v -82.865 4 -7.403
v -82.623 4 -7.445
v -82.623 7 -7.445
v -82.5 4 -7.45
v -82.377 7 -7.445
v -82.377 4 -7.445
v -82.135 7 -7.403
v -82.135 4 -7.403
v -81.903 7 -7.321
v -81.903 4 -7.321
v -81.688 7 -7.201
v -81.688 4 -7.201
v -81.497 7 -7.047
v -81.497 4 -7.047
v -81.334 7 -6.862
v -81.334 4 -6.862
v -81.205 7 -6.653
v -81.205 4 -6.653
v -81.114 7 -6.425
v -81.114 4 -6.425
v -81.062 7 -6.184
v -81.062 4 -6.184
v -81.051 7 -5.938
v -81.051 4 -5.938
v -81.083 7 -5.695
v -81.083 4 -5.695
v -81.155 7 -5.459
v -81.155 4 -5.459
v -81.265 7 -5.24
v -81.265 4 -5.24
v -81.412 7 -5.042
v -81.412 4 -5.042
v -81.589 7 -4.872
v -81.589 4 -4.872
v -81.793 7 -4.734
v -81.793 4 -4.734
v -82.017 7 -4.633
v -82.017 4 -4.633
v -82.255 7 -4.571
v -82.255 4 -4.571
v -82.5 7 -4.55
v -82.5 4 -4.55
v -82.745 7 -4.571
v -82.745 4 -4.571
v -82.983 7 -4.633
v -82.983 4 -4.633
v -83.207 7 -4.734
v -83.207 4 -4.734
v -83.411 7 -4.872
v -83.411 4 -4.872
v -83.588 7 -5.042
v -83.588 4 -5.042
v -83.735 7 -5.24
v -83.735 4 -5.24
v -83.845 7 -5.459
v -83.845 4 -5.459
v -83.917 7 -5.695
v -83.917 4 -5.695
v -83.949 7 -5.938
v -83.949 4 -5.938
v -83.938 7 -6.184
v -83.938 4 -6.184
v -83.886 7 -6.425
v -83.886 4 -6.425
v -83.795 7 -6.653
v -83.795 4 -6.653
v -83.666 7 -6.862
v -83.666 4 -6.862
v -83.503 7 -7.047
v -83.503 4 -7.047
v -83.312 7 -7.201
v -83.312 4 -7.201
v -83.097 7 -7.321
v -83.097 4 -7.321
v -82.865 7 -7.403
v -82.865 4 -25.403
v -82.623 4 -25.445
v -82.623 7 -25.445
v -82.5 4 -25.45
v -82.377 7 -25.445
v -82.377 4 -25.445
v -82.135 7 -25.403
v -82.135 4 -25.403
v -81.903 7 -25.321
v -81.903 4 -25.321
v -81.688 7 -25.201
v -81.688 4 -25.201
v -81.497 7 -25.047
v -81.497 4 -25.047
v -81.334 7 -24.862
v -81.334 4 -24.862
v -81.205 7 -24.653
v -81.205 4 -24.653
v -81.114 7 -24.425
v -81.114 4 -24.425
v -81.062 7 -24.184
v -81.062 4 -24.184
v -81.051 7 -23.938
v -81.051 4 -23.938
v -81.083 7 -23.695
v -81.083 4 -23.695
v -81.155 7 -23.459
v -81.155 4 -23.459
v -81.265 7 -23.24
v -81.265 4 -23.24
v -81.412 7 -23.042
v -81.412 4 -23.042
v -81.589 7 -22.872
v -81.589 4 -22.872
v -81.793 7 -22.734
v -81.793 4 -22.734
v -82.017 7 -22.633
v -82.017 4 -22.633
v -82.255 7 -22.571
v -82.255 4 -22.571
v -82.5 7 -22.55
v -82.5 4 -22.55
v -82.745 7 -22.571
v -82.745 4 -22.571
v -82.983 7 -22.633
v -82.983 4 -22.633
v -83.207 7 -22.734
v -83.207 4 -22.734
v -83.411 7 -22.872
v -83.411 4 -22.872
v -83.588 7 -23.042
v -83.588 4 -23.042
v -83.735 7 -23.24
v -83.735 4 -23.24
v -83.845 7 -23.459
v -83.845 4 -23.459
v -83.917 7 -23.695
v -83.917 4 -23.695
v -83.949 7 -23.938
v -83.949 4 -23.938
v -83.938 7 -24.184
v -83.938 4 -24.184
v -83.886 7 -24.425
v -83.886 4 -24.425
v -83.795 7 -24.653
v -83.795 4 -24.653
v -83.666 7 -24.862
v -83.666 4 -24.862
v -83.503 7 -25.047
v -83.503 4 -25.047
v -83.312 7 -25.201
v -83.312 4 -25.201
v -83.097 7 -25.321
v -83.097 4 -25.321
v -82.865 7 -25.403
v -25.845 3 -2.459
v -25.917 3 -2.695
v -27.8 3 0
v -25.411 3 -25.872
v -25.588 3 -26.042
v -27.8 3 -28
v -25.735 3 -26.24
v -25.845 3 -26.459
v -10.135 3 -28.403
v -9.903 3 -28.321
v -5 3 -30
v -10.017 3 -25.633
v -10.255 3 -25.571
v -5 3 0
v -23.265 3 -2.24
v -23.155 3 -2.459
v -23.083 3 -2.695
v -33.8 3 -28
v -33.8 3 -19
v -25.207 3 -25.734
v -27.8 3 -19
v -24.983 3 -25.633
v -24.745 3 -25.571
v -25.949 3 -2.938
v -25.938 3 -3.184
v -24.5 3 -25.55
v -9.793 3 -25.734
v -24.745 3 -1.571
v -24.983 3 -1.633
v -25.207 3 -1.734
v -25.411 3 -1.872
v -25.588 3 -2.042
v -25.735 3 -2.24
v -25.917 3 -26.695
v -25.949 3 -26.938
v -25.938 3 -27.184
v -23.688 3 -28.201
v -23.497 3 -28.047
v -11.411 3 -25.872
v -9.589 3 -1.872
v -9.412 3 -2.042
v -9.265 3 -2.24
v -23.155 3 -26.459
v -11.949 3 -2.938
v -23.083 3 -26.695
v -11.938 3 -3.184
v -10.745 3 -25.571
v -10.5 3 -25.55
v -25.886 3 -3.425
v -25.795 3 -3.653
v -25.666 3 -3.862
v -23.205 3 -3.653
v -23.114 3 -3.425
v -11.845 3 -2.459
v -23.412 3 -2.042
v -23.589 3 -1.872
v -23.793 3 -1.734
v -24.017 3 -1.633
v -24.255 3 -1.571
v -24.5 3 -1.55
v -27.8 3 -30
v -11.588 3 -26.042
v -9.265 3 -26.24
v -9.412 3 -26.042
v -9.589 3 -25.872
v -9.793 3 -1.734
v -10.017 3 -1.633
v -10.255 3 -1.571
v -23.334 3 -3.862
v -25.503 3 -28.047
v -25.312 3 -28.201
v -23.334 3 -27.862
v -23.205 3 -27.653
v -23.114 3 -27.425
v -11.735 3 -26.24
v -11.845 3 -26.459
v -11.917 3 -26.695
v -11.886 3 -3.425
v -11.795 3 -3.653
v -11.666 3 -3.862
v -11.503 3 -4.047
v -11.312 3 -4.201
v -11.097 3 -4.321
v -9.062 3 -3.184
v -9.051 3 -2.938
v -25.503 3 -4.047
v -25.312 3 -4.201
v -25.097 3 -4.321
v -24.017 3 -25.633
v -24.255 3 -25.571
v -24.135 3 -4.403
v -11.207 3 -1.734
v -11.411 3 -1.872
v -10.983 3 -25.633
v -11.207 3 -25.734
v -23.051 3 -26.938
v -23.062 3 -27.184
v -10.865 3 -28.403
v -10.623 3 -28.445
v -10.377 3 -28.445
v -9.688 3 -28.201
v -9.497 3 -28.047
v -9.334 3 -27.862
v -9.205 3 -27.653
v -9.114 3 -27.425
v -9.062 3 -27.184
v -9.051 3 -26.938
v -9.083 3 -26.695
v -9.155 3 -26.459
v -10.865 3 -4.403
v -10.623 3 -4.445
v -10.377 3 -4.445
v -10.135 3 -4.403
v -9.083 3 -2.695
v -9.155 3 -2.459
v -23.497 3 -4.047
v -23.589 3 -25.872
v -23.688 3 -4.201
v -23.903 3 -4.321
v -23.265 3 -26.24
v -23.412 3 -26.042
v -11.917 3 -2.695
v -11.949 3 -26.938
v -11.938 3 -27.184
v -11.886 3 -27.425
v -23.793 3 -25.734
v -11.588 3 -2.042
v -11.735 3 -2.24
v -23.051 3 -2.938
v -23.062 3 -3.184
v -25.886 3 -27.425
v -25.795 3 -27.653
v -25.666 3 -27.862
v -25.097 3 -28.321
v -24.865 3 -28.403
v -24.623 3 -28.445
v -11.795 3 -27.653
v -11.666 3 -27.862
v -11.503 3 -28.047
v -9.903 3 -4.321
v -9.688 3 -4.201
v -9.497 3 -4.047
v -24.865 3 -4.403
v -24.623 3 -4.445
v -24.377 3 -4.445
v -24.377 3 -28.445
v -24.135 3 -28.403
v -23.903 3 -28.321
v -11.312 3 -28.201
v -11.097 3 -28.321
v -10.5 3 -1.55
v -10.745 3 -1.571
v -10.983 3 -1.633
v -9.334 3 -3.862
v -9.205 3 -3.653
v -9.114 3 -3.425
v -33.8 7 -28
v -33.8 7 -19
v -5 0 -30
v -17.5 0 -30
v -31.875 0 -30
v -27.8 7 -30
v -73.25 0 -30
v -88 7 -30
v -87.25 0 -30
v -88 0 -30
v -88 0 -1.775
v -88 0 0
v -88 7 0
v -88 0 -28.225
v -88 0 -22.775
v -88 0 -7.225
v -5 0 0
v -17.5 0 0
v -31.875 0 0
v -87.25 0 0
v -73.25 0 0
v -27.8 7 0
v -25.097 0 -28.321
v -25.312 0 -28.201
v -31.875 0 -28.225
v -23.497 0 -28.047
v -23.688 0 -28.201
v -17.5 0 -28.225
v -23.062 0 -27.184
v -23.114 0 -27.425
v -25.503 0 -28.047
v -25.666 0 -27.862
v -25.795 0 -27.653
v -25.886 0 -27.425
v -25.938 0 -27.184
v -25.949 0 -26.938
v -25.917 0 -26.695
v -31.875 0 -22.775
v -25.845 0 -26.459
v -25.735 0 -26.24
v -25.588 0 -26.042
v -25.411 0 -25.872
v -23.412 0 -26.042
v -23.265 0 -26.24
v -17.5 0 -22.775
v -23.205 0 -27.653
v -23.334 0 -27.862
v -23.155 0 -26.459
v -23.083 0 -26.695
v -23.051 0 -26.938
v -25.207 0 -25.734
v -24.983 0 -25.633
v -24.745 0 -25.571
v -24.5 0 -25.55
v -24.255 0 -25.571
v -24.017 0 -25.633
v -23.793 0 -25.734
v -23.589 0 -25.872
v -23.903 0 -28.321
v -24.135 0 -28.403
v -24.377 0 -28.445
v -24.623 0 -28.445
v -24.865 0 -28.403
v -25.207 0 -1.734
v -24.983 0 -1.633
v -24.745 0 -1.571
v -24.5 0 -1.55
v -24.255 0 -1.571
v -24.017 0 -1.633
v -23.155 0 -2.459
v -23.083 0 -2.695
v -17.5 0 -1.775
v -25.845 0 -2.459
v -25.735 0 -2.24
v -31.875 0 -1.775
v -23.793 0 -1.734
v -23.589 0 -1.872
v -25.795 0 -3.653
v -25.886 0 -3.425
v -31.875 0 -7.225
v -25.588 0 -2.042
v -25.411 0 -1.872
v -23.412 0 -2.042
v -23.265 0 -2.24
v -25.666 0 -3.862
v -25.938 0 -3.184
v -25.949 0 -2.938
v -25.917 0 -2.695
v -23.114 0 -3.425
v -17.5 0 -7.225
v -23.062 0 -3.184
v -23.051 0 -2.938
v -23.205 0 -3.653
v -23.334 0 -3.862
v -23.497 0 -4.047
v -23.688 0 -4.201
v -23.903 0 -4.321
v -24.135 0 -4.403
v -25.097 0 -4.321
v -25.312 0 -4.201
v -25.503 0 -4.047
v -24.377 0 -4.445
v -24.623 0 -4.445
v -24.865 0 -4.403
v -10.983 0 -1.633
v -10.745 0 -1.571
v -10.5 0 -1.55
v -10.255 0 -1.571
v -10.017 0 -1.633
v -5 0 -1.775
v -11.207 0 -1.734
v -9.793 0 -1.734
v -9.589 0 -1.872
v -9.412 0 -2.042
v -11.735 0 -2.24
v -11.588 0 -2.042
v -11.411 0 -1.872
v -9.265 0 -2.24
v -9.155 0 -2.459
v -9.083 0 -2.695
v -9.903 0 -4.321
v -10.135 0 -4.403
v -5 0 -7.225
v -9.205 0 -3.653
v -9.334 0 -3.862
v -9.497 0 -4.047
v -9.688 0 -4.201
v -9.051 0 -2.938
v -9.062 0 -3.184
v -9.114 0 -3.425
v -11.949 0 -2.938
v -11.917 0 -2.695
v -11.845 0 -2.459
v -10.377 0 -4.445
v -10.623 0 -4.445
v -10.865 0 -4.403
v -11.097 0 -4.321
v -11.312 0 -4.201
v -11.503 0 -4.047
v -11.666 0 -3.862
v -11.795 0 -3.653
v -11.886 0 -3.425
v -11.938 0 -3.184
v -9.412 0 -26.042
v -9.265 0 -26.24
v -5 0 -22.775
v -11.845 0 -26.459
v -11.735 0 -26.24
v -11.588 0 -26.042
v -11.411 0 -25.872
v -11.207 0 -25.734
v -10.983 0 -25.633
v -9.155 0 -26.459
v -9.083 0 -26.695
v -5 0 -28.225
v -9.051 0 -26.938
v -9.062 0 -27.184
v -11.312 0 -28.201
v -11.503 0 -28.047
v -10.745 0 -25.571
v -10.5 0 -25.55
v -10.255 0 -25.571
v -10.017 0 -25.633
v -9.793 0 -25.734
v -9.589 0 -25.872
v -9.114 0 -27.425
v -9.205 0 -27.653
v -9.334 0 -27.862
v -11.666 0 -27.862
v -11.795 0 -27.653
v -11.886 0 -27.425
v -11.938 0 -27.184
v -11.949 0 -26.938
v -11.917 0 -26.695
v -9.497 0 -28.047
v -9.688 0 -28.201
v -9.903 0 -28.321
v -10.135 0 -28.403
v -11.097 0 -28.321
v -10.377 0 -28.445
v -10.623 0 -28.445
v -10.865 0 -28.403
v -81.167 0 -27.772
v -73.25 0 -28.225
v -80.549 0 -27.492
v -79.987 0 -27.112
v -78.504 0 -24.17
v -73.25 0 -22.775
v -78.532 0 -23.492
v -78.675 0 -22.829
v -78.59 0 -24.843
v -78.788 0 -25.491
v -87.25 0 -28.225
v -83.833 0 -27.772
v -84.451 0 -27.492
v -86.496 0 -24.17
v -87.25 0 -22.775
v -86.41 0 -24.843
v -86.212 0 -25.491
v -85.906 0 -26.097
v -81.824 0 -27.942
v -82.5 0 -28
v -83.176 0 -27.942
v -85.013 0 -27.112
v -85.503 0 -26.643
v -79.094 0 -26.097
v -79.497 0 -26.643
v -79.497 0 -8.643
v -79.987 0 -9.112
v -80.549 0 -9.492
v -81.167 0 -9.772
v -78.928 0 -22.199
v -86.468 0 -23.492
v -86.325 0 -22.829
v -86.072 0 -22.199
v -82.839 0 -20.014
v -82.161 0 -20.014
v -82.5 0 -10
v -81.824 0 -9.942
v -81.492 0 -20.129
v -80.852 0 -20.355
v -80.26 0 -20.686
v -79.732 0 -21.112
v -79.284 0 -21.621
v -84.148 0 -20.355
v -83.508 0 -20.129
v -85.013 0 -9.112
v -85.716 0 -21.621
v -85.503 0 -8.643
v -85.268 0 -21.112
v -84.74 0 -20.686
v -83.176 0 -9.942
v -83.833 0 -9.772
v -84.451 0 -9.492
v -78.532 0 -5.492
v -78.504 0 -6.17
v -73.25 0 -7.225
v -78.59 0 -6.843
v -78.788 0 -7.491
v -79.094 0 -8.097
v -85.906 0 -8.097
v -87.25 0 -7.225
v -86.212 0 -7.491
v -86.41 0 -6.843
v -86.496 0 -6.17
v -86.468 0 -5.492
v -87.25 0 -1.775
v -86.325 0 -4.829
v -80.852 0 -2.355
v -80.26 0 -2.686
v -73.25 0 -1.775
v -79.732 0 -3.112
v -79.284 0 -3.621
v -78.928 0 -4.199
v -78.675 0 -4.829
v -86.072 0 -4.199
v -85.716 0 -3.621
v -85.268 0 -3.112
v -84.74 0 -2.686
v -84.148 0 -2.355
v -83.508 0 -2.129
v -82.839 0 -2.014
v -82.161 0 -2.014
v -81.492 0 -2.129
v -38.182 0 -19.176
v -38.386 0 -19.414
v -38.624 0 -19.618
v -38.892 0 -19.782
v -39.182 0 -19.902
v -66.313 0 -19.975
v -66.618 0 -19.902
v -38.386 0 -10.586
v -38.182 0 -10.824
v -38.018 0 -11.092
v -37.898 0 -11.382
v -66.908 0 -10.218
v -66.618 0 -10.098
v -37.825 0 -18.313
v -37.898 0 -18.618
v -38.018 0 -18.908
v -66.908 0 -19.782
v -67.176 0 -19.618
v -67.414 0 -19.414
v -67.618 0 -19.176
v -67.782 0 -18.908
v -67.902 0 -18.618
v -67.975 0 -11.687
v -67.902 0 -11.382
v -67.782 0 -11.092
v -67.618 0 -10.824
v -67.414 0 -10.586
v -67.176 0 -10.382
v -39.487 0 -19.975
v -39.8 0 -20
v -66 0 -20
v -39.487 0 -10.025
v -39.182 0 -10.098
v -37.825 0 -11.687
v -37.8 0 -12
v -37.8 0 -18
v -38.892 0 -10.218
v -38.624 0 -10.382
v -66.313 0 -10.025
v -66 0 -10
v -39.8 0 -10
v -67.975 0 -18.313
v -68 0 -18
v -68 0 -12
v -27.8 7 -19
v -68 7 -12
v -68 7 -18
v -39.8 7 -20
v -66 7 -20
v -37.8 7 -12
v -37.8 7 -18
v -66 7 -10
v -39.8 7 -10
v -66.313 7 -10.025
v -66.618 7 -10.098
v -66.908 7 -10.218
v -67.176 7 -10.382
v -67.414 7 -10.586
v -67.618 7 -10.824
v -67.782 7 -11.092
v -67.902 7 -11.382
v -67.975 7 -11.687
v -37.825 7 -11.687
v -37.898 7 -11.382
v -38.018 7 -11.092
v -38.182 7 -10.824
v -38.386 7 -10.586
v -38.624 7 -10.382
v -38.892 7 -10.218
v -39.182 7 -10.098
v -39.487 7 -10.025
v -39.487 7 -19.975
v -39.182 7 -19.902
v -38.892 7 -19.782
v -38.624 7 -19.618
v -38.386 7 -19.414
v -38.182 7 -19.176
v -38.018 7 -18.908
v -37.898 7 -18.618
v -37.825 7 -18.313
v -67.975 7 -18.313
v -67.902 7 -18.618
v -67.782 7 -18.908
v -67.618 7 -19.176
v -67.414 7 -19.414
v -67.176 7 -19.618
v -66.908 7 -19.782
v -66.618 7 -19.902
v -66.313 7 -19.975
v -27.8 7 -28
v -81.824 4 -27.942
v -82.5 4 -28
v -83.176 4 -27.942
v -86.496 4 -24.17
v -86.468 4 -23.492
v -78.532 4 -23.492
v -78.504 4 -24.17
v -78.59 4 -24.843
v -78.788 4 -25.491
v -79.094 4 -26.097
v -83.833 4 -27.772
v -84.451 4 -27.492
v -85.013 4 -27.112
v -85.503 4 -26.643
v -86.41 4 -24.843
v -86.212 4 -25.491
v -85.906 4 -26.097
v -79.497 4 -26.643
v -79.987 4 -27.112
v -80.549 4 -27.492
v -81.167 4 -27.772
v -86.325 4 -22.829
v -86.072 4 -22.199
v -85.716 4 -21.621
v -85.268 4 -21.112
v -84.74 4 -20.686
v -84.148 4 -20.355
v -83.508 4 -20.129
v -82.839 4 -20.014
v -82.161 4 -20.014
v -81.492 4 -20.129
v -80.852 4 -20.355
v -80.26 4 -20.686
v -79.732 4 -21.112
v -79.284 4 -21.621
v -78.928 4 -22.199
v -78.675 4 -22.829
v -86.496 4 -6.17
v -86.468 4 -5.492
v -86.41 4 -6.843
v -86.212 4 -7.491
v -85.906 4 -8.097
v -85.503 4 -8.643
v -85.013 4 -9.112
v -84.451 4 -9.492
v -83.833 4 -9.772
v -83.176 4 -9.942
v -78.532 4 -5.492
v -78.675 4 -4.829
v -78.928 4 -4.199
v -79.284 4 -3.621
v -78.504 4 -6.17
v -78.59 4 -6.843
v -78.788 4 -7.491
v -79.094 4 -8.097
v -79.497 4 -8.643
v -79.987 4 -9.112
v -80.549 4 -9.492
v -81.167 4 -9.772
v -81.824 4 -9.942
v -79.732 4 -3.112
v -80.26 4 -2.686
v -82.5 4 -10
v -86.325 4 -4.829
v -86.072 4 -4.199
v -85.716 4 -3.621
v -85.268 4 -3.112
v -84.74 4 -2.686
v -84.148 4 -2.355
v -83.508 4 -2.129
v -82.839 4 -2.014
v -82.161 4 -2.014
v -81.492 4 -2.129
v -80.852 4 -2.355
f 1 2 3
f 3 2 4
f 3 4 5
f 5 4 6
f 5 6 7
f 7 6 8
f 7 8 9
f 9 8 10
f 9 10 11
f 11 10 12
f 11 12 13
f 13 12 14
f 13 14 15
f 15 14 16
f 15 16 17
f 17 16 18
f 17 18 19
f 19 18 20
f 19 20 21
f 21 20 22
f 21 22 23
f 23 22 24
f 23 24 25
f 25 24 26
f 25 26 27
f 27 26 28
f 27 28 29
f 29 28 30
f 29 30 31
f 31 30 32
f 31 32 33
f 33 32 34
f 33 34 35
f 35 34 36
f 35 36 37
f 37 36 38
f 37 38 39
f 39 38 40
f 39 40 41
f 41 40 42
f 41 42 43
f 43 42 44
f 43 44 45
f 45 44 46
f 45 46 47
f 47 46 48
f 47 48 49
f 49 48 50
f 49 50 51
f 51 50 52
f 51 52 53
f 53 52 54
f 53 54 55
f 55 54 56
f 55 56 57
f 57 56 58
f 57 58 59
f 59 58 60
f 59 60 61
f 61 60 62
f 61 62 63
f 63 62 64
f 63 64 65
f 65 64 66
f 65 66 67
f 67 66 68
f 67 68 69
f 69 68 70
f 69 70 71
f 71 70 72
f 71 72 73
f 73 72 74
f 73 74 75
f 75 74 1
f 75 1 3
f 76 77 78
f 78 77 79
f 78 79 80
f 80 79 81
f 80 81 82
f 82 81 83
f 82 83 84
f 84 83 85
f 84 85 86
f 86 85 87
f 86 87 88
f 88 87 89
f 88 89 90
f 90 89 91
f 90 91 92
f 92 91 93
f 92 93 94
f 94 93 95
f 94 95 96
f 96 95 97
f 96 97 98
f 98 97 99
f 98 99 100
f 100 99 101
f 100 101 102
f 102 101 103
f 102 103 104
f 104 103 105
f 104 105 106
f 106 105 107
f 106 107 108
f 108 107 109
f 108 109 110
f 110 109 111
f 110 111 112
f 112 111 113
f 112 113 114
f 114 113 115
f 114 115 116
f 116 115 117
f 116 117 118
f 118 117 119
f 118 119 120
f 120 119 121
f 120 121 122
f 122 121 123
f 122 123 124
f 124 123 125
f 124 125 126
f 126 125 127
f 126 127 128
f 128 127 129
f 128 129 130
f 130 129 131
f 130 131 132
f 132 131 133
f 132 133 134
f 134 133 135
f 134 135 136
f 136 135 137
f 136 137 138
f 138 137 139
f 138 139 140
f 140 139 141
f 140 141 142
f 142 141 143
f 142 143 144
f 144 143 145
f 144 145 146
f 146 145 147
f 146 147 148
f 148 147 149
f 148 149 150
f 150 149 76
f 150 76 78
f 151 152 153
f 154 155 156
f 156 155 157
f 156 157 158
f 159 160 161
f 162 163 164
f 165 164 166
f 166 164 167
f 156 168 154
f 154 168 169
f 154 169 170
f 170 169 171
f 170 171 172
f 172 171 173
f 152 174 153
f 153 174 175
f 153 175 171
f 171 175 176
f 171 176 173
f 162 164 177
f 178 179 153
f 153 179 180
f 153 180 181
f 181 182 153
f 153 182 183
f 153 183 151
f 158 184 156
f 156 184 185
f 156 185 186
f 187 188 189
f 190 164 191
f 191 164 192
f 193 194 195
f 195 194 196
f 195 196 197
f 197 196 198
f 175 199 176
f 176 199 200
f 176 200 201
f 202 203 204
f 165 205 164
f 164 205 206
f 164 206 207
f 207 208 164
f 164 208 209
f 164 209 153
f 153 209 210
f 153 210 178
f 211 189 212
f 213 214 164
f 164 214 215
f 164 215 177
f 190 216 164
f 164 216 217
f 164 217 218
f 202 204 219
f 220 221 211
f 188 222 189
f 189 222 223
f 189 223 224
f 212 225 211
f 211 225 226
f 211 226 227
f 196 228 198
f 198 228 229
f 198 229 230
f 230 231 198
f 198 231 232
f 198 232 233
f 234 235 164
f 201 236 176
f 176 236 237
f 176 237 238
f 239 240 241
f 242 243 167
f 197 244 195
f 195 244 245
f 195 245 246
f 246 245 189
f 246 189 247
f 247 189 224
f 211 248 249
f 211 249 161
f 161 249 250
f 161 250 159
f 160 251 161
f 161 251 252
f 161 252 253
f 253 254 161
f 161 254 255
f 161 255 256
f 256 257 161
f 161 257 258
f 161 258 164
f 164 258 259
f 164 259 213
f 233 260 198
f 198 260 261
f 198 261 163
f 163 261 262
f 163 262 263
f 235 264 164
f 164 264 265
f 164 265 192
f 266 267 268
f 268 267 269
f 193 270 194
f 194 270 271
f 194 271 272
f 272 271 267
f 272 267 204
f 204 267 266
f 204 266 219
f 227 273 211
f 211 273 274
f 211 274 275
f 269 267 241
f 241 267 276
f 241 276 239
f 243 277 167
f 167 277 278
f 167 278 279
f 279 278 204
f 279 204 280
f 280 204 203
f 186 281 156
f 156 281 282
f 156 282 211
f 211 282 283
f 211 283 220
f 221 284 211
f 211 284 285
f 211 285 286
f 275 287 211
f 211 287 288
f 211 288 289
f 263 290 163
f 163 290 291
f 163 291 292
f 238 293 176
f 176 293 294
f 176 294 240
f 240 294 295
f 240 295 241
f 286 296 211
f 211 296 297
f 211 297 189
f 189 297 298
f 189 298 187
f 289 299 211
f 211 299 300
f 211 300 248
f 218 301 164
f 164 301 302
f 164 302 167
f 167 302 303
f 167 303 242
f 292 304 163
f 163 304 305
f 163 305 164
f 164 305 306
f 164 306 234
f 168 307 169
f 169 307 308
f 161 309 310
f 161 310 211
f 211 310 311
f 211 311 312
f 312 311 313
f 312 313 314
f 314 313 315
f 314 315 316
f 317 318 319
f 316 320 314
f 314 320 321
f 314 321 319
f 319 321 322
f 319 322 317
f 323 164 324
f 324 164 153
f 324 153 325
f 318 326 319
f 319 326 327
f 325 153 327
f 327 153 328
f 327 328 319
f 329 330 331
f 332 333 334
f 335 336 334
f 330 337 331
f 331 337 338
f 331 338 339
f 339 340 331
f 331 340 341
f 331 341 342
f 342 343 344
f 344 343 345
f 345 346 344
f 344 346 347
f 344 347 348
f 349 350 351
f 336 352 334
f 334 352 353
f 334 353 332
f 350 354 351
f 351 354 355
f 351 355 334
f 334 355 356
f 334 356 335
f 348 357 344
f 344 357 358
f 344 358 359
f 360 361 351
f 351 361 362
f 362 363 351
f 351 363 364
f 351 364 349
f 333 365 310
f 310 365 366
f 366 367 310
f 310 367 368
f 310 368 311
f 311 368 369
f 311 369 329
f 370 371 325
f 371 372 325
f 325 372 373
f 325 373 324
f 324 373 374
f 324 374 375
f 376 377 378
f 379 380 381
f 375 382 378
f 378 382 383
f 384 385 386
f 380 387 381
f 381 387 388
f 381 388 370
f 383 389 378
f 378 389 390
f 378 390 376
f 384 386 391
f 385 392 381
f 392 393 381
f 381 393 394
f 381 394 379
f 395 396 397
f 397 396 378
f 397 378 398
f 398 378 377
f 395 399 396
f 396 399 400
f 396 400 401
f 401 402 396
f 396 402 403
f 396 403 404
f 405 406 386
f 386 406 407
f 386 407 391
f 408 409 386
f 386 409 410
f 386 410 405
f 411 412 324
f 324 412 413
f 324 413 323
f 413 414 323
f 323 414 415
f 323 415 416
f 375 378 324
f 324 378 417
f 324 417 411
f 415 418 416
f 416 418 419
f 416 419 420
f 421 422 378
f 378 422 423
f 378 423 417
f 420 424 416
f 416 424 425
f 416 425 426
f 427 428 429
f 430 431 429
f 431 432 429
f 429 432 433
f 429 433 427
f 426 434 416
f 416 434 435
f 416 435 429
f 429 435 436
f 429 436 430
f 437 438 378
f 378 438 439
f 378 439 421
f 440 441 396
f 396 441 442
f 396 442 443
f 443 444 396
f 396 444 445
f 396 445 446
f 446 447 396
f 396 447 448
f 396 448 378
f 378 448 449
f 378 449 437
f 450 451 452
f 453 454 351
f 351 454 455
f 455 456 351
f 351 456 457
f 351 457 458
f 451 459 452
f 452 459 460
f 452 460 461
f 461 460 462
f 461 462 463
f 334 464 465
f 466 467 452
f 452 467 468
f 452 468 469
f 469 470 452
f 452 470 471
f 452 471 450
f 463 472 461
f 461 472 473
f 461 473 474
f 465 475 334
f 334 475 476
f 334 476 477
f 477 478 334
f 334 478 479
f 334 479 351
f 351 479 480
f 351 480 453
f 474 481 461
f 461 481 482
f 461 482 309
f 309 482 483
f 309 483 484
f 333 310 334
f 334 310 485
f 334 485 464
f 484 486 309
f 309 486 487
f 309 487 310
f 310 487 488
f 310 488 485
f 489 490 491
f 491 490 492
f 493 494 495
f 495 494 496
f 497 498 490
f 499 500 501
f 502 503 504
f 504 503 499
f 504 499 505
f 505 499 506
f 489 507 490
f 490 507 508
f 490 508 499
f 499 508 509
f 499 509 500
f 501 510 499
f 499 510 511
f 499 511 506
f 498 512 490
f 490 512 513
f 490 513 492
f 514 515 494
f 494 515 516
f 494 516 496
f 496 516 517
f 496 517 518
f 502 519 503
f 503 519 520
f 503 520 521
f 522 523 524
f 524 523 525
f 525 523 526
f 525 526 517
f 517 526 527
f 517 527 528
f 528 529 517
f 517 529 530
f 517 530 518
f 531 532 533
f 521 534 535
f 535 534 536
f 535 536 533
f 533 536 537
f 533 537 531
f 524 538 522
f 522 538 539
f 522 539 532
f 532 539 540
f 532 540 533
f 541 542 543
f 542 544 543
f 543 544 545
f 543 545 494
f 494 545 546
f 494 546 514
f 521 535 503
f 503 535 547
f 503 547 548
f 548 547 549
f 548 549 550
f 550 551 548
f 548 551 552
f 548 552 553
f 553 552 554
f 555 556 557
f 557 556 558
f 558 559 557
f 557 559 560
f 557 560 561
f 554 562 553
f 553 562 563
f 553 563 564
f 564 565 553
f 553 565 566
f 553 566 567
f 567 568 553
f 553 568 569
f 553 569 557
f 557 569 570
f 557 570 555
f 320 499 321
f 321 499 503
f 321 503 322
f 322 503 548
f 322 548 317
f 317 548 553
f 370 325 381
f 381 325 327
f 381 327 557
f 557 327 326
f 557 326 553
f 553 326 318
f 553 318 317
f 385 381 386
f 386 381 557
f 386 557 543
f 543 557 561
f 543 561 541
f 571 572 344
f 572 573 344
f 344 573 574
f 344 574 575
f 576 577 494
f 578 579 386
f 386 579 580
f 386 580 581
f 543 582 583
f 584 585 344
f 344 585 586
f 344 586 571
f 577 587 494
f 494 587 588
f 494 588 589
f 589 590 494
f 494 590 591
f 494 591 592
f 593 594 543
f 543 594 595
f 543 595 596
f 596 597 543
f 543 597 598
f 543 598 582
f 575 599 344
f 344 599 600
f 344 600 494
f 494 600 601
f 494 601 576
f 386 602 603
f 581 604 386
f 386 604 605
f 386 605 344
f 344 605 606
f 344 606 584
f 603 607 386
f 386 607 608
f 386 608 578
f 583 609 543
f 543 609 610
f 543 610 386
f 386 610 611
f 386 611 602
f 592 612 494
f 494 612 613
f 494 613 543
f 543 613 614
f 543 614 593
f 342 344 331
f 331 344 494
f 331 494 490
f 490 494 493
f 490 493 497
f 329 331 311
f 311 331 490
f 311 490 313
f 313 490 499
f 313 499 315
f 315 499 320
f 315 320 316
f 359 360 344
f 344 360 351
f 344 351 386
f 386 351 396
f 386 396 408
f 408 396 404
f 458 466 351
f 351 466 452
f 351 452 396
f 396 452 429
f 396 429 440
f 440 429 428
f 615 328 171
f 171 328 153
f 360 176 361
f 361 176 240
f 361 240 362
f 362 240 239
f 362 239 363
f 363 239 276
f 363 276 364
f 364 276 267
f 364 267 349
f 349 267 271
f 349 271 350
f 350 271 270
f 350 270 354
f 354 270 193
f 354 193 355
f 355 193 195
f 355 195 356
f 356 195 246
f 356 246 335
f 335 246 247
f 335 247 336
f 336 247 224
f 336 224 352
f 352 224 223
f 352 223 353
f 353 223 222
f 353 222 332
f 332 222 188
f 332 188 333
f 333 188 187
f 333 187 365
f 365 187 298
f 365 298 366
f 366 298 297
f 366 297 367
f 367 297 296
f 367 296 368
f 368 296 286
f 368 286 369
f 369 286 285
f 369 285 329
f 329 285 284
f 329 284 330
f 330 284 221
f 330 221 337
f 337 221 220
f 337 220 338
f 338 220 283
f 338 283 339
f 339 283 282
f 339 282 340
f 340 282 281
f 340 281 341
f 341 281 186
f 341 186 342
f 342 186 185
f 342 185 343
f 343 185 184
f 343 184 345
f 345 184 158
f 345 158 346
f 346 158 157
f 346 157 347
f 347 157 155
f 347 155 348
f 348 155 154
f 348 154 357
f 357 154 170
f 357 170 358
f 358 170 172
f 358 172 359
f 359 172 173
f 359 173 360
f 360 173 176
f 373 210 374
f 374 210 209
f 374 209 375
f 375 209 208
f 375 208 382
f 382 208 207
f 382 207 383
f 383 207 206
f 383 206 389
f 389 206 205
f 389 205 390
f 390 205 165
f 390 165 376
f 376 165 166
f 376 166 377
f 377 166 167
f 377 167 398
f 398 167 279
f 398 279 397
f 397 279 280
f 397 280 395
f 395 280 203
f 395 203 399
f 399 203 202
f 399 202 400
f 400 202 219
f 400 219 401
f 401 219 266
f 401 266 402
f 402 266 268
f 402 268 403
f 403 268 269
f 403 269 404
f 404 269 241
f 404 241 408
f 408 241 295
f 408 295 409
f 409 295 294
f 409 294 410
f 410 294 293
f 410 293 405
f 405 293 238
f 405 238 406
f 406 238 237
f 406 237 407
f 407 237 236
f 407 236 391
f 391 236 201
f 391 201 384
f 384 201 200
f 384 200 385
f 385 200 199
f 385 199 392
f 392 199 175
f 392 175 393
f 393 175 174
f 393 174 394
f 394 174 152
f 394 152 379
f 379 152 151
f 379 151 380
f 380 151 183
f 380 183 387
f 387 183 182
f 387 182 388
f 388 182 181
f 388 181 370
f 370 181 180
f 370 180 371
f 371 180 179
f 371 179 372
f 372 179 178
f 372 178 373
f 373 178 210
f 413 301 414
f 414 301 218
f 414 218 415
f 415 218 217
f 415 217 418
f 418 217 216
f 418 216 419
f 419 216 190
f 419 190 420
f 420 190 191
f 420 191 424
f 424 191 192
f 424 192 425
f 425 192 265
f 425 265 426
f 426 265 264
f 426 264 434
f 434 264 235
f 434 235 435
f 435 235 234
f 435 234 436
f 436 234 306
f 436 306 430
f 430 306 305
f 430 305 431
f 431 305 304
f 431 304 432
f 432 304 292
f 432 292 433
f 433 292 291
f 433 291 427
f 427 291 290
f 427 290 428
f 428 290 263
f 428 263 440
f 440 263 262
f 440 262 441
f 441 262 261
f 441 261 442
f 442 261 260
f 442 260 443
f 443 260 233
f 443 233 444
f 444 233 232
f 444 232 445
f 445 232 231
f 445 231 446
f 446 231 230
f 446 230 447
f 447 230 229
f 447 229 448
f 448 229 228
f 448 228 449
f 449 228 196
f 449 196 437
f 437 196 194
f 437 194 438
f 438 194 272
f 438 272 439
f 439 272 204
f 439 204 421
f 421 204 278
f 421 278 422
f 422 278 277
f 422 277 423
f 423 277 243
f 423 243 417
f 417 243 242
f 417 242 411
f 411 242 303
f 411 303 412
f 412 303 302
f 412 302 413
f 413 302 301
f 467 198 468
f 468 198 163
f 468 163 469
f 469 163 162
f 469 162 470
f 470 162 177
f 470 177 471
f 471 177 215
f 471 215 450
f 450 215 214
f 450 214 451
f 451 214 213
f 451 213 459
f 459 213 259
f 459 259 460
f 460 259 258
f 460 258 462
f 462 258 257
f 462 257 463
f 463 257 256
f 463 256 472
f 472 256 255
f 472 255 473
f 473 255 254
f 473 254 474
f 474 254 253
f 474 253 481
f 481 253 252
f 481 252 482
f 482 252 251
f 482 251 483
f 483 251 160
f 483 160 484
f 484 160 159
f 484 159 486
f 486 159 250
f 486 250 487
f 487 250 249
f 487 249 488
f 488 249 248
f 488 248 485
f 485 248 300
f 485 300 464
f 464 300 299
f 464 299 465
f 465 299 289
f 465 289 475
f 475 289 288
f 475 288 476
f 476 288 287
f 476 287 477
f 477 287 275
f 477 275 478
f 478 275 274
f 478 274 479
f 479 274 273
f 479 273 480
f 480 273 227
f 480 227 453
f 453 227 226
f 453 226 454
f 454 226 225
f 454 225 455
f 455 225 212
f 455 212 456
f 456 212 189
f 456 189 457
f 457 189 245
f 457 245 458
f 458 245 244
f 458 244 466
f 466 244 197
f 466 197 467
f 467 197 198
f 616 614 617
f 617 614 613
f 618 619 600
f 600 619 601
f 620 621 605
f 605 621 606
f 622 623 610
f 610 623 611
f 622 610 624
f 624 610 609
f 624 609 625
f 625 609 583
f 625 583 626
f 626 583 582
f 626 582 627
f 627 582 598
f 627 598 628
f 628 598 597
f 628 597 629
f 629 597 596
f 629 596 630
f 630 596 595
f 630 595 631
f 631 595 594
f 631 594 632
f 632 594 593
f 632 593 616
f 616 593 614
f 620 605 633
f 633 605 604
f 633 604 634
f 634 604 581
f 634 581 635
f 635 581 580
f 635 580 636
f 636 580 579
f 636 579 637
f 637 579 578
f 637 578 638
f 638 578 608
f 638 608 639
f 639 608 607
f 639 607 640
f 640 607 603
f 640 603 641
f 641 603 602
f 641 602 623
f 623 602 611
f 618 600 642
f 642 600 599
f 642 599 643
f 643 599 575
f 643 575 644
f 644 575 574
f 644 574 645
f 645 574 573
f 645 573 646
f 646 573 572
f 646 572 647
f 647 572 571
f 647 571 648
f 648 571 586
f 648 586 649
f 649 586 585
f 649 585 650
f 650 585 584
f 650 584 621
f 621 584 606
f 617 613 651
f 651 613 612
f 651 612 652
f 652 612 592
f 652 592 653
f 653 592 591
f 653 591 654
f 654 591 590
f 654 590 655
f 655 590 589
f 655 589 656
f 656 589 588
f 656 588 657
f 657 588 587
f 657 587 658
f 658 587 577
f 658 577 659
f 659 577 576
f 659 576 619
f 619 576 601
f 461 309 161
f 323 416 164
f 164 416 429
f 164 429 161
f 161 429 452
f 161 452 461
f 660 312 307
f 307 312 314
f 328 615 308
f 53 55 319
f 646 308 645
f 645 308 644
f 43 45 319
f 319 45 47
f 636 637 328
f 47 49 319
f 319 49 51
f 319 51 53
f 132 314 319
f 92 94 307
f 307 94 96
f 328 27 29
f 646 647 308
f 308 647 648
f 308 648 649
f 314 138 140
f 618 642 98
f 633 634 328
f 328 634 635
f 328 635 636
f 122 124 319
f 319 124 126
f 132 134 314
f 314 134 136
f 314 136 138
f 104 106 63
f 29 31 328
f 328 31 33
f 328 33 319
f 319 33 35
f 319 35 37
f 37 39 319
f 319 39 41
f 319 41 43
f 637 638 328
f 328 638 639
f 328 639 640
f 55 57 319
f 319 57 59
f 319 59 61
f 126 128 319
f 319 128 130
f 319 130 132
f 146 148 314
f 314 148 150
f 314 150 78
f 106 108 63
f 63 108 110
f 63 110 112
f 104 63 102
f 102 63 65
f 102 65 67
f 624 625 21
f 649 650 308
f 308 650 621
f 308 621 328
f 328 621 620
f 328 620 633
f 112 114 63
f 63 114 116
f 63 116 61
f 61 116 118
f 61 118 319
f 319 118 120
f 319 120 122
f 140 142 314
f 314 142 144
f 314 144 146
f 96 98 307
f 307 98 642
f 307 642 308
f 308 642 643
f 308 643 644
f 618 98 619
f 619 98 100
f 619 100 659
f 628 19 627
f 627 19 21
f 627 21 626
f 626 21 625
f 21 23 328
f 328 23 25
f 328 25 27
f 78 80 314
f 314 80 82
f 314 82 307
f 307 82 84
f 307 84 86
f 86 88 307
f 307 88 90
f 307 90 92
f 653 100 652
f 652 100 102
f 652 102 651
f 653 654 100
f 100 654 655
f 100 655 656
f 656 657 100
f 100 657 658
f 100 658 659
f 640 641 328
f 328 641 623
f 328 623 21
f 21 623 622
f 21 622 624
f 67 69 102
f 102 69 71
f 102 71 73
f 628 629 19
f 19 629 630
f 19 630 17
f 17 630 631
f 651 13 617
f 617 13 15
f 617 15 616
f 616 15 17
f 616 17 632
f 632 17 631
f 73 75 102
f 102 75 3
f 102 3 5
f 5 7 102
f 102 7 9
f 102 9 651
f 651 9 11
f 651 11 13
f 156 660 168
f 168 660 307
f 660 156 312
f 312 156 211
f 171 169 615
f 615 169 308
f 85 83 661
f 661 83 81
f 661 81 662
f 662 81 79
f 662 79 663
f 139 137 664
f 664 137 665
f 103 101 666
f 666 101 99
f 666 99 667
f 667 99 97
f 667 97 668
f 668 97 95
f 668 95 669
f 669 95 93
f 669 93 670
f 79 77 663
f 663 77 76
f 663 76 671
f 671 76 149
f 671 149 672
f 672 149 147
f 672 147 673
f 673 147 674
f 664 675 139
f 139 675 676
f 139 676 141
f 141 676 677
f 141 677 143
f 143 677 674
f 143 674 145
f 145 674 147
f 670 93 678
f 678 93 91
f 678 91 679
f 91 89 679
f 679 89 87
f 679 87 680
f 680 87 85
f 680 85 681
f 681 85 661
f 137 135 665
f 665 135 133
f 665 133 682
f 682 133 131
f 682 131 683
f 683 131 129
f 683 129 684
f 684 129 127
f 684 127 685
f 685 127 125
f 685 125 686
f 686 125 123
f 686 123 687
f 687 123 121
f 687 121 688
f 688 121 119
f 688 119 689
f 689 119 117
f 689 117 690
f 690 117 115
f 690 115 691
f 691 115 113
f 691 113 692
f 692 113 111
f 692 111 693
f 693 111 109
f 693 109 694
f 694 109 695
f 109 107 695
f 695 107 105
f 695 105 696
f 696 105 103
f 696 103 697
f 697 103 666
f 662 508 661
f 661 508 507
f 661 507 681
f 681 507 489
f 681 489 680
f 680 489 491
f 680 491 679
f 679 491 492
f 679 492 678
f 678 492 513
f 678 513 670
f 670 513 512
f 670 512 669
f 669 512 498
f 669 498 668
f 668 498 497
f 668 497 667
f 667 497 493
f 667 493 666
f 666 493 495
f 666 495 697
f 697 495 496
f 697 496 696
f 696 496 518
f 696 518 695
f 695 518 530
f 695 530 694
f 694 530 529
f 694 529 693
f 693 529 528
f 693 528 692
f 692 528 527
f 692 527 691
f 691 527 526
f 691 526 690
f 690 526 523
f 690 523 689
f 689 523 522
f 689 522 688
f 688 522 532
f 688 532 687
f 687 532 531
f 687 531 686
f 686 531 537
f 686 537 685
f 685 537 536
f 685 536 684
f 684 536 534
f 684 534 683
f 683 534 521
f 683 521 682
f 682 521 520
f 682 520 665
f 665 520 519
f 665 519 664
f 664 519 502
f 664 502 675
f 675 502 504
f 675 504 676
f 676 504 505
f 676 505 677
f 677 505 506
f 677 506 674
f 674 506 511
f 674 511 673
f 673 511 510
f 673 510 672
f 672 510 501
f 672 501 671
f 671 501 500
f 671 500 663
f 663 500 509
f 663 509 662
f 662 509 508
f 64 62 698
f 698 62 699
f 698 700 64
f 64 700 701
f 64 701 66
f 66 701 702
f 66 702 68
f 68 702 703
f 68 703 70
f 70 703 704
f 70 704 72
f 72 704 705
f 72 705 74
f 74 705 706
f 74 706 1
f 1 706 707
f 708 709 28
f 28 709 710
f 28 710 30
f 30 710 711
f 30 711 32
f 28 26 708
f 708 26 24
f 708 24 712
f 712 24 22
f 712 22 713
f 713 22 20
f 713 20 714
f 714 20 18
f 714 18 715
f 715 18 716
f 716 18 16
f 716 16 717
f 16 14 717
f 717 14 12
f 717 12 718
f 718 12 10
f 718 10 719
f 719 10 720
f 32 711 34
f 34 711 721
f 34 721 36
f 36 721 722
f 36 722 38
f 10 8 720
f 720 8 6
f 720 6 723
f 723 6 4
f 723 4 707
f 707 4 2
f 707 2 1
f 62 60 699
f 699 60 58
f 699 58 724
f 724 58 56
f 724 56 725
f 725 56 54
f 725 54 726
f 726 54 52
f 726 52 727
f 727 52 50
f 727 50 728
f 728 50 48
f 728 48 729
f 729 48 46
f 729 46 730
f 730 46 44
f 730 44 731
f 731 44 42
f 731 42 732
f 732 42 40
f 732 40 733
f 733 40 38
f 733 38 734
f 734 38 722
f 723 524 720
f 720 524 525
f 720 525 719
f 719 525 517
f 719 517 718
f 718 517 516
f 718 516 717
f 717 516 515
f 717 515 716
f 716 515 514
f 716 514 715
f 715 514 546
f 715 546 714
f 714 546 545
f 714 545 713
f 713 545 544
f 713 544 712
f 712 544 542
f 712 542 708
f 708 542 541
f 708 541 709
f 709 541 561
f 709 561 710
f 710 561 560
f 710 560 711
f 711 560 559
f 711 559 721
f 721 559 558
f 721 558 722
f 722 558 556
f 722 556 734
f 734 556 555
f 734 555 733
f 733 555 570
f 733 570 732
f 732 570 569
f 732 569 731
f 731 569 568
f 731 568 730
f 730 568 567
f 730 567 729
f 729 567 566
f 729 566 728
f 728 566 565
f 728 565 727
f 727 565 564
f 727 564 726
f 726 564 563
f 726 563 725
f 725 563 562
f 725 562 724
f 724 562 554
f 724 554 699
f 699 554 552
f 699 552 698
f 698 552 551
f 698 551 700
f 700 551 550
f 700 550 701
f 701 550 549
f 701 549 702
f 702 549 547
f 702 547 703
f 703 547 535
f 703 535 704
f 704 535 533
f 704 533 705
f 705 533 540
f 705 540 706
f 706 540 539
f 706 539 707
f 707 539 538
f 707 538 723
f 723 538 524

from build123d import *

# Parameters (mm, degrees)
SKETCH_1_W          = 88
SKETCH_1_H          = 30
EXTRUDE_1_DEPTH     = 3
SKETCH_2_W          = 27.8
SKETCH_2_H          = 30
CUT_EXTRUDE_1_DEPTH = 1
SKETCH_3_R          = 1.45
CUT_EXTRUDE_2_DEPTH = 11
SKETCH_4_R          = 1.45
CUT_EXTRUDE_4_DEPTH = 11
SKETCH_5_W          = 30.2
SKETCH_5_H          = 10
CUT_EXTRUDE_5_DEPTH = 11
FILLET_1_R          = 2
SKETCH_6_W          = 5
SKETCH_6_H          = 30
CUT_EXTRUDE_6_DEPTH = 10
SKETCH_9_W          = 60.2
SKETCH_9_H          = 30
SKETCH_9_R          = 1.45
EXTRUDE_4_DEPTH     = 4
EXTRUDE_START       = 1
SKETCH_7_W          = 22.8
SKETCH_7_H          = 30
SKETCH_7_R          = 1.45
EXTRUDE_5_DEPTH     = 1
SKETCH_11_W         = 15
SKETCH_11_H         = 4
CUT_EXTRUDE_8_DEPTH = 6
SKETCH_12_W         = 2
SKETCH_12_H         = 4
EXTRUDE_6_DEPTH     = 6
SKETCH_13_W         = 6
SKETCH_13_H         = 4
EXTRUDE_7_DEPTH     = 4
SKETCH_14_R         = 4
CUT_EXTRUDE_9_DEPTH = 4


with BuildPart() as part:
    # 草图1 → 凸台-拉伸1 (new body)
    with BuildSketch(Plane(origin=(0, 0, 0), x_dir=(1, 0, 0), z_dir=(0, 1, 0))):
        with Locations((-44, 15)):
            Rectangle(SKETCH_1_W, SKETCH_1_H)
    extrude(amount=EXTRUDE_1_DEPTH)

    # 草图2 → 切除-拉伸1 (cut)
    with BuildSketch(Plane(origin=(0, 3, 0), x_dir=(1, 0, 0), z_dir=(0, 1, 0))):
        with Locations((-13.9, 15)):
            Rectangle(SKETCH_2_W, SKETCH_2_H)
    extrude(amount=-CUT_EXTRUDE_1_DEPTH, mode=Mode.SUBTRACT)

    # 草图3 → 切除-拉伸2 (cut)
    with BuildSketch(Plane(origin=(0, 2, 0), x_dir=(1, 0, 0), z_dir=(0, 1, 0))):
        with Locations(Location((-24.5, 27, 0), (0, 0, 270))):
            Circle(SKETCH_3_R)
        with Locations(Location((-24.5, 3, 0), (0, 0, 270))):
            Circle(SKETCH_3_R)
        with Locations(Location((-10.5, 3, 0), (0, 0, 270))):
            Circle(SKETCH_3_R)
        with Locations(Location((-10.5, 27, 0), (0, 0, 270))):
            Circle(SKETCH_3_R)
    extrude(amount=-CUT_EXTRUDE_2_DEPTH, mode=Mode.SUBTRACT)

    # 草图4 → 切除-拉伸4 (cut)
    with BuildSketch(Plane(origin=(0, 3, 0), x_dir=(1, 0, 0), z_dir=(0, 1, 0))):
        with Locations(Location((-82.5, 24, 0), (0, 0, 270))):
            Circle(SKETCH_4_R)
        with Locations(Location((-82.5, 6, 0), (0, 0, 270))):
            Circle(SKETCH_4_R)
    extrude(amount=-CUT_EXTRUDE_4_DEPTH, mode=Mode.SUBTRACT)

    # 草图5 → 切除-拉伸5 (cut)
    with BuildSketch(Plane(origin=(0, 3, 0), x_dir=(1, 0, 0), z_dir=(0, 1, 0))):
        with Locations((-52.9, 15)):
            Rectangle(SKETCH_5_W, SKETCH_5_H)
    extrude(amount=-CUT_EXTRUDE_5_DEPTH, mode=Mode.SUBTRACT)

    # 圆角1
    fillet_1_edges = [part.edges().sort_by_distance(p)[0] for p in [
        (-68, 1.5, -10),
        (-68, 1.5, -20),
        (-37.8, 1.5, -20),
        (-37.8, 1.5, -10),
    ]]
    fillet(fillet_1_edges, radius=FILLET_1_R)

    # 草图6 → 切除-拉伸6 (cut)
    with BuildSketch(Plane.XZ):
        with Locations((-2.5, -15)):
            Rectangle(SKETCH_6_W, SKETCH_6_H)
    extrude(amount=-CUT_EXTRUDE_6_DEPTH, mode=Mode.SUBTRACT)

    # 草图9 → 凸台-拉伸4 (add)
    with BuildSketch(Plane(origin=(0, 3, 0), x_dir=(1, 0, 0), z_dir=(0, 1, 0))):
        with Locations((-57.9, 15)):
            Rectangle(SKETCH_9_W, SKETCH_9_H)
        with Locations(Location((-82.5, 6, 0), (0, 0, 270))):
            Circle(SKETCH_9_R, mode=Mode.SUBTRACT)
        with Locations(Location((-82.5, 24, 0), (0, 0, 270))):
            Circle(SKETCH_9_R, mode=Mode.SUBTRACT)
        with BuildLine():
            Line((-37.8, 12), (-37.8, 18))
            ThreePointArc((-37.8, 18), (-38.385786438, 19.414213562), (-39.8, 20))
            Line((-39.8, 20), (-66, 20))
            ThreePointArc((-66, 20), (-67.414213562, 19.414213562), (-68, 18))
            Line((-68, 18), (-68, 12))
            ThreePointArc((-68, 12), (-67.414213562, 10.585786438), (-66, 10))
            Line((-66, 10), (-39.8, 10))
            ThreePointArc((-39.8, 10), (-38.385786438, 10.585786438), (-37.8, 12))
        make_face(mode=Mode.SUBTRACT)
    extrude(amount=EXTRUDE_4_DEPTH)

    # 草图7 → 凸台-拉伸5 (add)
    with BuildSketch(Plane(origin=(0, 2, 0), x_dir=(1, 0, 0), z_dir=(0, 1, 0)).offset(EXTRUDE_START)):
        with Locations((-16.4, 15)):
            Rectangle(SKETCH_7_W, SKETCH_7_H)
        with Locations(Location((-10.5, 3, 0), (0, 0, 270))):
            Circle(SKETCH_7_R, mode=Mode.SUBTRACT)
        with Locations(Location((-24.5, 27, 0), (0, 0, 270))):
            Circle(SKETCH_7_R, mode=Mode.SUBTRACT)
        with Locations(Location((-10.5, 27, 0), (0, 0, 270))):
            Circle(SKETCH_7_R, mode=Mode.SUBTRACT)
        with Locations(Location((-24.5, 3, 0), (0, 0, 270))):
            Circle(SKETCH_7_R, mode=Mode.SUBTRACT)
    extrude(amount=-EXTRUDE_5_DEPTH)

    # 草图11 → 切除-拉伸8 (cut)
    with BuildSketch(Plane(origin=(-27.8, 0, 0), x_dir=(0, 0, -1), z_dir=(1, 0, 0))):
        with Locations((22.5, 5)):
            Rectangle(SKETCH_11_W, SKETCH_11_H)
    extrude(amount=-CUT_EXTRUDE_8_DEPTH, mode=Mode.SUBTRACT)

    # 草图12 → 凸台-拉伸6 (add)
    with BuildSketch(Plane(origin=(-33.8, 0, 0), x_dir=(0, 0, -1), z_dir=(1, 0, 0))):
        with Locations((29, 5)):
            Rectangle(SKETCH_12_W, SKETCH_12_H)
    extrude(amount=EXTRUDE_6_DEPTH)

    # 草图13 → 凸台-拉伸7 (add)
    with BuildSketch(Plane(origin=(0, 0, -15), x_dir=(-1, 0, 0), z_dir=(0, 0, -1))):
        with Locations((30.8, 5)):
            Rectangle(SKETCH_13_W, SKETCH_13_H)
    extrude(amount=EXTRUDE_7_DEPTH)

    # 草图14 → 切除-拉伸9 (cut)
    with BuildSketch(Plane.XZ):
        with Locations(Location((-82.5, -6, 0), (0, 0, 270))):
            Circle(SKETCH_14_R)
        with Locations(Location((-82.5, -24, 0), (0, 0, 270))):
            Circle(SKETCH_14_R)
    extrude(amount=-CUT_EXTRUDE_9_DEPTH, mode=Mode.SUBTRACT)


solid = part.part
